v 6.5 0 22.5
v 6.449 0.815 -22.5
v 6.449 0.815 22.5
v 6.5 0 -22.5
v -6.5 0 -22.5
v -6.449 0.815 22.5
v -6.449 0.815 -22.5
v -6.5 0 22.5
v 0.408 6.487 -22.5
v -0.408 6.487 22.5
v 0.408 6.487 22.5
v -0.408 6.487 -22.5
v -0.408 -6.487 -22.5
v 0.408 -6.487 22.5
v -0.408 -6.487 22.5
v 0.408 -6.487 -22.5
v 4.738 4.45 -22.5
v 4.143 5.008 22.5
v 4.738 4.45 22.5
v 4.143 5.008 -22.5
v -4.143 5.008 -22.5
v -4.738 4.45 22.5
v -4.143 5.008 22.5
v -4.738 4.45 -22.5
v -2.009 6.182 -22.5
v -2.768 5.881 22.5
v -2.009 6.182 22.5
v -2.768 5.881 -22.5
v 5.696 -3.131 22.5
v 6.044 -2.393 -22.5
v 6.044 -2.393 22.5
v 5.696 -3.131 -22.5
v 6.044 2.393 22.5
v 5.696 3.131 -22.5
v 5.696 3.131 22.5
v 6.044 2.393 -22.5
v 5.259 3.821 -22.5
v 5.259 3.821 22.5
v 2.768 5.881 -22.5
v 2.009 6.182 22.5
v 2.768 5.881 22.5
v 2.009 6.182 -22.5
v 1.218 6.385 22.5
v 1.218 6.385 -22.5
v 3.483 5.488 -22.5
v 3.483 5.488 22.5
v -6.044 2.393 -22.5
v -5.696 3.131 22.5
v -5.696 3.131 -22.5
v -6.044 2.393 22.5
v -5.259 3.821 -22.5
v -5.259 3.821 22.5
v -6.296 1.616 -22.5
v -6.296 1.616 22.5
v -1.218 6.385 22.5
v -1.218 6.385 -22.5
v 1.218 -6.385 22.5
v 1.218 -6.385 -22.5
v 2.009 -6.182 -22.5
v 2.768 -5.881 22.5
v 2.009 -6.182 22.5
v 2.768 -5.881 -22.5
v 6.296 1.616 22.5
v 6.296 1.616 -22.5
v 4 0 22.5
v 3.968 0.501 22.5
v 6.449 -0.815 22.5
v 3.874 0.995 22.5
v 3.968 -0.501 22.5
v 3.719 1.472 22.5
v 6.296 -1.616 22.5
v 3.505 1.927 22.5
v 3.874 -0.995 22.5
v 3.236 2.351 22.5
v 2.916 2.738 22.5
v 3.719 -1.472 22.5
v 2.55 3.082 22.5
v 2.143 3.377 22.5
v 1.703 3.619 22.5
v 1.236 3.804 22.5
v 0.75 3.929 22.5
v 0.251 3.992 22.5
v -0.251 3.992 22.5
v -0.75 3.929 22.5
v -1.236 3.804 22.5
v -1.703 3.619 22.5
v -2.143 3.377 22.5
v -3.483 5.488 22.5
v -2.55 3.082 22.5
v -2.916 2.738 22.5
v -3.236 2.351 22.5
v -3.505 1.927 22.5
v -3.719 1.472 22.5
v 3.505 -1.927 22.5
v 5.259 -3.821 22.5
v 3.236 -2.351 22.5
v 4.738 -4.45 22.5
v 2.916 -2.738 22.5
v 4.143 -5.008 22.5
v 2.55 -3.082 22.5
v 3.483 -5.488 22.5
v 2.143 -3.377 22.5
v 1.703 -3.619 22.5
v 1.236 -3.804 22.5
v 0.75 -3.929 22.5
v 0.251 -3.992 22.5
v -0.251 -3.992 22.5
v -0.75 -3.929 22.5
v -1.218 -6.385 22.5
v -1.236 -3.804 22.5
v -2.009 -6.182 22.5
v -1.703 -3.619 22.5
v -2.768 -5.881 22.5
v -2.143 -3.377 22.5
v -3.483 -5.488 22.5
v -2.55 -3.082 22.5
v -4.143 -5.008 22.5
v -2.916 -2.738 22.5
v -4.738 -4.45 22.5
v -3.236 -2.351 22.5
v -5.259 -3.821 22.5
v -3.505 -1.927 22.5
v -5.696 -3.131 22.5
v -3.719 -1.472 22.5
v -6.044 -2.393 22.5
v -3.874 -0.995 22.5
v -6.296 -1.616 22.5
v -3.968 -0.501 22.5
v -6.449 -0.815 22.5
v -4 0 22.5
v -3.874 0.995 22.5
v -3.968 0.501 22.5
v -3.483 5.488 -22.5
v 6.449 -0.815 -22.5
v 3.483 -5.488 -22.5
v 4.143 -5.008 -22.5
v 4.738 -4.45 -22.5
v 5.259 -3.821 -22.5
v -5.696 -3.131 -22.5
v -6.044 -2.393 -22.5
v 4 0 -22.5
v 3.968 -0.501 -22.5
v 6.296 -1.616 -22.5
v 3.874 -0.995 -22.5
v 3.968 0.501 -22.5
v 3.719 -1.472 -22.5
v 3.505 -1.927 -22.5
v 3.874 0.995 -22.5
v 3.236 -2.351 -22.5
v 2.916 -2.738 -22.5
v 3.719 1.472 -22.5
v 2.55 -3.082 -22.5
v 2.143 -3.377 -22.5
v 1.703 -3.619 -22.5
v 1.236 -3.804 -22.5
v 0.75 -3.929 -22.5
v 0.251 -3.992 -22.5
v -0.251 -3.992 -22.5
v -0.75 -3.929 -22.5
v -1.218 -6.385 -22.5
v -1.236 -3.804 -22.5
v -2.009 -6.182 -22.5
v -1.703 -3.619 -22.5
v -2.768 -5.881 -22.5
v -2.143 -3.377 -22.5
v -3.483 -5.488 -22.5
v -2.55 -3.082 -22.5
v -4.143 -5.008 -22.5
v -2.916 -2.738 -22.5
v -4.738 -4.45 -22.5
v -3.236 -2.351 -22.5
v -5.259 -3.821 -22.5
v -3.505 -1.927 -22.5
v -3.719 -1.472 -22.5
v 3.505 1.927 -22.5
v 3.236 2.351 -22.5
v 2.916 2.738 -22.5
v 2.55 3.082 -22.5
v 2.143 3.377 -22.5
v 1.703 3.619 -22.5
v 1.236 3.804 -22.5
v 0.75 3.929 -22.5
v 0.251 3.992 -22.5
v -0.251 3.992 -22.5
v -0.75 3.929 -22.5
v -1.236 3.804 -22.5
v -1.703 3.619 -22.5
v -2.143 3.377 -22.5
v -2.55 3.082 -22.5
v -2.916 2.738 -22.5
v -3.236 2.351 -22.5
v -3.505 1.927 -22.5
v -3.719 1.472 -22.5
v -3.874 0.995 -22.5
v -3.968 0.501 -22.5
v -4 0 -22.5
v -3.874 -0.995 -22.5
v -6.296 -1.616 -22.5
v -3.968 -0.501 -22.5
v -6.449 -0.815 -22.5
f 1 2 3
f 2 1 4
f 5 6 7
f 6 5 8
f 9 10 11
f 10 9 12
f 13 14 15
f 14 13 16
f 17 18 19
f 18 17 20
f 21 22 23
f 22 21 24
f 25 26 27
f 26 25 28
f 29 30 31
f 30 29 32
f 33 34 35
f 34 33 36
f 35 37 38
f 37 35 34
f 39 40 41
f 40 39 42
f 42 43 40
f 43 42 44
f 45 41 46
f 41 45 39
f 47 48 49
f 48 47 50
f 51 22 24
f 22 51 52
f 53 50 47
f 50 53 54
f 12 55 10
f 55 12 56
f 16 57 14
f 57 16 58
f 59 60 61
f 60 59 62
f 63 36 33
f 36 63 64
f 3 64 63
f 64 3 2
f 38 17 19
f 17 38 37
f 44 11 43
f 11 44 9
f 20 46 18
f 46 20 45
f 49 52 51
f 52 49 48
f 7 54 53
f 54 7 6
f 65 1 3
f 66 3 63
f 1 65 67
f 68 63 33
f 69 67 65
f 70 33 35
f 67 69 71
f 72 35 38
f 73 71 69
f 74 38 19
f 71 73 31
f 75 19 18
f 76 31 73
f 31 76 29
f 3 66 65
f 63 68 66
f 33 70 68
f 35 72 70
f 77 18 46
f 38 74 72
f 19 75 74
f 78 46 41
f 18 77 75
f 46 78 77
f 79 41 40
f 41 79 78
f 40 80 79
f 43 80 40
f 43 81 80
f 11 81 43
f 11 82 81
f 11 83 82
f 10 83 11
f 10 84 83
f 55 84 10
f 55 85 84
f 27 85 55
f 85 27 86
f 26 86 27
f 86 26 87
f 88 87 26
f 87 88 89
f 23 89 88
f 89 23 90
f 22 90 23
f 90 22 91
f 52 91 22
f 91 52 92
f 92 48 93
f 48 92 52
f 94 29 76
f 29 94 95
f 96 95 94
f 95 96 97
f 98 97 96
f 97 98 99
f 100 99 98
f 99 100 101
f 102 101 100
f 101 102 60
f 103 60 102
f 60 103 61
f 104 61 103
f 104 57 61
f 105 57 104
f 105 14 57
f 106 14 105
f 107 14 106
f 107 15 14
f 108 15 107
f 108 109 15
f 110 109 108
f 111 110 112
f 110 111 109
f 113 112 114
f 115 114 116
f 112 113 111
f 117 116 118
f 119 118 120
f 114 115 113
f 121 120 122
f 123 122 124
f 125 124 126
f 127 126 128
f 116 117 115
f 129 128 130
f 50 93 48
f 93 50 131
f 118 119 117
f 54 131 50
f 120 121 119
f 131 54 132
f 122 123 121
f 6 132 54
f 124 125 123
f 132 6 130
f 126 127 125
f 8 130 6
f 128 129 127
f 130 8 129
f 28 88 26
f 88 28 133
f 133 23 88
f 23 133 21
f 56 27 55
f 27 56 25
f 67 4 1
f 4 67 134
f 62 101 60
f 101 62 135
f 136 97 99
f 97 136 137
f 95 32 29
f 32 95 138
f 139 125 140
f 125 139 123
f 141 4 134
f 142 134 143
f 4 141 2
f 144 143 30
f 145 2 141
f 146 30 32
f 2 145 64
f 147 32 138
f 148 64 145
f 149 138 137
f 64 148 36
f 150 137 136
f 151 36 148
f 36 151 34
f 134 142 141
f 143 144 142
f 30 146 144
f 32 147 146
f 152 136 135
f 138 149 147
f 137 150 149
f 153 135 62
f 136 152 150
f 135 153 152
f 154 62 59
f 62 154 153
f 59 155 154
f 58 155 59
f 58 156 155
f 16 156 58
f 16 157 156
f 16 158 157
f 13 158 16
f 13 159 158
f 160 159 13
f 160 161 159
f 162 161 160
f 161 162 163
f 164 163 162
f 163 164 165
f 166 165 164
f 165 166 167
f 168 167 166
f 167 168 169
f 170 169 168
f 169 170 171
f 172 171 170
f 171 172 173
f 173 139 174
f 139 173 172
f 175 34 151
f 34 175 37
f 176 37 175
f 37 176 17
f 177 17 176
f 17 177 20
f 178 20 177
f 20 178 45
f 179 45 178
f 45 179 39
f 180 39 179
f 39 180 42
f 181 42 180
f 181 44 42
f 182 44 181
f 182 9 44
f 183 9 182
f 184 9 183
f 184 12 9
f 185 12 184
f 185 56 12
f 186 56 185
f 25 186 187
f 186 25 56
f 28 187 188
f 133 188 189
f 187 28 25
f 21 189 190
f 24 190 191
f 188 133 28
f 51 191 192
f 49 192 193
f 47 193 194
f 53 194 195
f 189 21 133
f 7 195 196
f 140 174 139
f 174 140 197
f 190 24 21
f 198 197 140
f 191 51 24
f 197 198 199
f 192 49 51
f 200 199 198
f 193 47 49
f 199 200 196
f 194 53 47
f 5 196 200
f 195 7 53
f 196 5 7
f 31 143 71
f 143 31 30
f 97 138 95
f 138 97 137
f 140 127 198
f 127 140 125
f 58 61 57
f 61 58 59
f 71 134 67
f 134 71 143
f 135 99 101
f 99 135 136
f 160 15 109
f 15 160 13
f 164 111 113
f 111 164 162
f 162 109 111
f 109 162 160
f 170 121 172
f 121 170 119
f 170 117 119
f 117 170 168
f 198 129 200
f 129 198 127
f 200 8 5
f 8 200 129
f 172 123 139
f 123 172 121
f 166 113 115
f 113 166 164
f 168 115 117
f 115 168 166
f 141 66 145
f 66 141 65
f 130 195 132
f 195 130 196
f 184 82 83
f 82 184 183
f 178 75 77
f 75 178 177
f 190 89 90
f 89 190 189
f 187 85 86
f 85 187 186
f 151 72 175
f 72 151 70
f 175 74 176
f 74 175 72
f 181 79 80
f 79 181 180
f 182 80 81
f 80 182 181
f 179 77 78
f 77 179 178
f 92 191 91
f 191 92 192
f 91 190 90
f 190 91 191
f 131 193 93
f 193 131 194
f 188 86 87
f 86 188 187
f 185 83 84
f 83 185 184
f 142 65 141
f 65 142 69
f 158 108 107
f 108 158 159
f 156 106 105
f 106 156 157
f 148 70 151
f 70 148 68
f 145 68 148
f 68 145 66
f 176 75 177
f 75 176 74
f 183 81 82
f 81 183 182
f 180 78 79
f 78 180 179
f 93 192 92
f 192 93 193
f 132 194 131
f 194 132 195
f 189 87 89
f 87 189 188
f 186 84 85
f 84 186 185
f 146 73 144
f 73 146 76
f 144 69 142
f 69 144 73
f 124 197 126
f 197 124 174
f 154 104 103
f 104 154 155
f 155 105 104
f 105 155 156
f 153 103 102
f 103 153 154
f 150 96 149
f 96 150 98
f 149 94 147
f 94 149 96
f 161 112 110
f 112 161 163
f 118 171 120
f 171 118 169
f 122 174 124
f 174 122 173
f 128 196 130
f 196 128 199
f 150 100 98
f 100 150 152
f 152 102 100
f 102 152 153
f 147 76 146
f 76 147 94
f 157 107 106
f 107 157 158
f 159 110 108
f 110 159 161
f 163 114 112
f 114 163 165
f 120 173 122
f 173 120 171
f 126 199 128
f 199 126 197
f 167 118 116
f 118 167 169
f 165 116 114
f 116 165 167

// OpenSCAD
$fn = 50;


difference() {
	union() {
		translate(v = [0, 0, -22.5000000000]) {
			cylinder(h = 45, r = 6.5000000000);
		}
	}
	union() {
		translate(v = [0, 0, -100.0000000000]) {
			cylinder(h = 200, r = 4.0000000000);
		}
	}
}
